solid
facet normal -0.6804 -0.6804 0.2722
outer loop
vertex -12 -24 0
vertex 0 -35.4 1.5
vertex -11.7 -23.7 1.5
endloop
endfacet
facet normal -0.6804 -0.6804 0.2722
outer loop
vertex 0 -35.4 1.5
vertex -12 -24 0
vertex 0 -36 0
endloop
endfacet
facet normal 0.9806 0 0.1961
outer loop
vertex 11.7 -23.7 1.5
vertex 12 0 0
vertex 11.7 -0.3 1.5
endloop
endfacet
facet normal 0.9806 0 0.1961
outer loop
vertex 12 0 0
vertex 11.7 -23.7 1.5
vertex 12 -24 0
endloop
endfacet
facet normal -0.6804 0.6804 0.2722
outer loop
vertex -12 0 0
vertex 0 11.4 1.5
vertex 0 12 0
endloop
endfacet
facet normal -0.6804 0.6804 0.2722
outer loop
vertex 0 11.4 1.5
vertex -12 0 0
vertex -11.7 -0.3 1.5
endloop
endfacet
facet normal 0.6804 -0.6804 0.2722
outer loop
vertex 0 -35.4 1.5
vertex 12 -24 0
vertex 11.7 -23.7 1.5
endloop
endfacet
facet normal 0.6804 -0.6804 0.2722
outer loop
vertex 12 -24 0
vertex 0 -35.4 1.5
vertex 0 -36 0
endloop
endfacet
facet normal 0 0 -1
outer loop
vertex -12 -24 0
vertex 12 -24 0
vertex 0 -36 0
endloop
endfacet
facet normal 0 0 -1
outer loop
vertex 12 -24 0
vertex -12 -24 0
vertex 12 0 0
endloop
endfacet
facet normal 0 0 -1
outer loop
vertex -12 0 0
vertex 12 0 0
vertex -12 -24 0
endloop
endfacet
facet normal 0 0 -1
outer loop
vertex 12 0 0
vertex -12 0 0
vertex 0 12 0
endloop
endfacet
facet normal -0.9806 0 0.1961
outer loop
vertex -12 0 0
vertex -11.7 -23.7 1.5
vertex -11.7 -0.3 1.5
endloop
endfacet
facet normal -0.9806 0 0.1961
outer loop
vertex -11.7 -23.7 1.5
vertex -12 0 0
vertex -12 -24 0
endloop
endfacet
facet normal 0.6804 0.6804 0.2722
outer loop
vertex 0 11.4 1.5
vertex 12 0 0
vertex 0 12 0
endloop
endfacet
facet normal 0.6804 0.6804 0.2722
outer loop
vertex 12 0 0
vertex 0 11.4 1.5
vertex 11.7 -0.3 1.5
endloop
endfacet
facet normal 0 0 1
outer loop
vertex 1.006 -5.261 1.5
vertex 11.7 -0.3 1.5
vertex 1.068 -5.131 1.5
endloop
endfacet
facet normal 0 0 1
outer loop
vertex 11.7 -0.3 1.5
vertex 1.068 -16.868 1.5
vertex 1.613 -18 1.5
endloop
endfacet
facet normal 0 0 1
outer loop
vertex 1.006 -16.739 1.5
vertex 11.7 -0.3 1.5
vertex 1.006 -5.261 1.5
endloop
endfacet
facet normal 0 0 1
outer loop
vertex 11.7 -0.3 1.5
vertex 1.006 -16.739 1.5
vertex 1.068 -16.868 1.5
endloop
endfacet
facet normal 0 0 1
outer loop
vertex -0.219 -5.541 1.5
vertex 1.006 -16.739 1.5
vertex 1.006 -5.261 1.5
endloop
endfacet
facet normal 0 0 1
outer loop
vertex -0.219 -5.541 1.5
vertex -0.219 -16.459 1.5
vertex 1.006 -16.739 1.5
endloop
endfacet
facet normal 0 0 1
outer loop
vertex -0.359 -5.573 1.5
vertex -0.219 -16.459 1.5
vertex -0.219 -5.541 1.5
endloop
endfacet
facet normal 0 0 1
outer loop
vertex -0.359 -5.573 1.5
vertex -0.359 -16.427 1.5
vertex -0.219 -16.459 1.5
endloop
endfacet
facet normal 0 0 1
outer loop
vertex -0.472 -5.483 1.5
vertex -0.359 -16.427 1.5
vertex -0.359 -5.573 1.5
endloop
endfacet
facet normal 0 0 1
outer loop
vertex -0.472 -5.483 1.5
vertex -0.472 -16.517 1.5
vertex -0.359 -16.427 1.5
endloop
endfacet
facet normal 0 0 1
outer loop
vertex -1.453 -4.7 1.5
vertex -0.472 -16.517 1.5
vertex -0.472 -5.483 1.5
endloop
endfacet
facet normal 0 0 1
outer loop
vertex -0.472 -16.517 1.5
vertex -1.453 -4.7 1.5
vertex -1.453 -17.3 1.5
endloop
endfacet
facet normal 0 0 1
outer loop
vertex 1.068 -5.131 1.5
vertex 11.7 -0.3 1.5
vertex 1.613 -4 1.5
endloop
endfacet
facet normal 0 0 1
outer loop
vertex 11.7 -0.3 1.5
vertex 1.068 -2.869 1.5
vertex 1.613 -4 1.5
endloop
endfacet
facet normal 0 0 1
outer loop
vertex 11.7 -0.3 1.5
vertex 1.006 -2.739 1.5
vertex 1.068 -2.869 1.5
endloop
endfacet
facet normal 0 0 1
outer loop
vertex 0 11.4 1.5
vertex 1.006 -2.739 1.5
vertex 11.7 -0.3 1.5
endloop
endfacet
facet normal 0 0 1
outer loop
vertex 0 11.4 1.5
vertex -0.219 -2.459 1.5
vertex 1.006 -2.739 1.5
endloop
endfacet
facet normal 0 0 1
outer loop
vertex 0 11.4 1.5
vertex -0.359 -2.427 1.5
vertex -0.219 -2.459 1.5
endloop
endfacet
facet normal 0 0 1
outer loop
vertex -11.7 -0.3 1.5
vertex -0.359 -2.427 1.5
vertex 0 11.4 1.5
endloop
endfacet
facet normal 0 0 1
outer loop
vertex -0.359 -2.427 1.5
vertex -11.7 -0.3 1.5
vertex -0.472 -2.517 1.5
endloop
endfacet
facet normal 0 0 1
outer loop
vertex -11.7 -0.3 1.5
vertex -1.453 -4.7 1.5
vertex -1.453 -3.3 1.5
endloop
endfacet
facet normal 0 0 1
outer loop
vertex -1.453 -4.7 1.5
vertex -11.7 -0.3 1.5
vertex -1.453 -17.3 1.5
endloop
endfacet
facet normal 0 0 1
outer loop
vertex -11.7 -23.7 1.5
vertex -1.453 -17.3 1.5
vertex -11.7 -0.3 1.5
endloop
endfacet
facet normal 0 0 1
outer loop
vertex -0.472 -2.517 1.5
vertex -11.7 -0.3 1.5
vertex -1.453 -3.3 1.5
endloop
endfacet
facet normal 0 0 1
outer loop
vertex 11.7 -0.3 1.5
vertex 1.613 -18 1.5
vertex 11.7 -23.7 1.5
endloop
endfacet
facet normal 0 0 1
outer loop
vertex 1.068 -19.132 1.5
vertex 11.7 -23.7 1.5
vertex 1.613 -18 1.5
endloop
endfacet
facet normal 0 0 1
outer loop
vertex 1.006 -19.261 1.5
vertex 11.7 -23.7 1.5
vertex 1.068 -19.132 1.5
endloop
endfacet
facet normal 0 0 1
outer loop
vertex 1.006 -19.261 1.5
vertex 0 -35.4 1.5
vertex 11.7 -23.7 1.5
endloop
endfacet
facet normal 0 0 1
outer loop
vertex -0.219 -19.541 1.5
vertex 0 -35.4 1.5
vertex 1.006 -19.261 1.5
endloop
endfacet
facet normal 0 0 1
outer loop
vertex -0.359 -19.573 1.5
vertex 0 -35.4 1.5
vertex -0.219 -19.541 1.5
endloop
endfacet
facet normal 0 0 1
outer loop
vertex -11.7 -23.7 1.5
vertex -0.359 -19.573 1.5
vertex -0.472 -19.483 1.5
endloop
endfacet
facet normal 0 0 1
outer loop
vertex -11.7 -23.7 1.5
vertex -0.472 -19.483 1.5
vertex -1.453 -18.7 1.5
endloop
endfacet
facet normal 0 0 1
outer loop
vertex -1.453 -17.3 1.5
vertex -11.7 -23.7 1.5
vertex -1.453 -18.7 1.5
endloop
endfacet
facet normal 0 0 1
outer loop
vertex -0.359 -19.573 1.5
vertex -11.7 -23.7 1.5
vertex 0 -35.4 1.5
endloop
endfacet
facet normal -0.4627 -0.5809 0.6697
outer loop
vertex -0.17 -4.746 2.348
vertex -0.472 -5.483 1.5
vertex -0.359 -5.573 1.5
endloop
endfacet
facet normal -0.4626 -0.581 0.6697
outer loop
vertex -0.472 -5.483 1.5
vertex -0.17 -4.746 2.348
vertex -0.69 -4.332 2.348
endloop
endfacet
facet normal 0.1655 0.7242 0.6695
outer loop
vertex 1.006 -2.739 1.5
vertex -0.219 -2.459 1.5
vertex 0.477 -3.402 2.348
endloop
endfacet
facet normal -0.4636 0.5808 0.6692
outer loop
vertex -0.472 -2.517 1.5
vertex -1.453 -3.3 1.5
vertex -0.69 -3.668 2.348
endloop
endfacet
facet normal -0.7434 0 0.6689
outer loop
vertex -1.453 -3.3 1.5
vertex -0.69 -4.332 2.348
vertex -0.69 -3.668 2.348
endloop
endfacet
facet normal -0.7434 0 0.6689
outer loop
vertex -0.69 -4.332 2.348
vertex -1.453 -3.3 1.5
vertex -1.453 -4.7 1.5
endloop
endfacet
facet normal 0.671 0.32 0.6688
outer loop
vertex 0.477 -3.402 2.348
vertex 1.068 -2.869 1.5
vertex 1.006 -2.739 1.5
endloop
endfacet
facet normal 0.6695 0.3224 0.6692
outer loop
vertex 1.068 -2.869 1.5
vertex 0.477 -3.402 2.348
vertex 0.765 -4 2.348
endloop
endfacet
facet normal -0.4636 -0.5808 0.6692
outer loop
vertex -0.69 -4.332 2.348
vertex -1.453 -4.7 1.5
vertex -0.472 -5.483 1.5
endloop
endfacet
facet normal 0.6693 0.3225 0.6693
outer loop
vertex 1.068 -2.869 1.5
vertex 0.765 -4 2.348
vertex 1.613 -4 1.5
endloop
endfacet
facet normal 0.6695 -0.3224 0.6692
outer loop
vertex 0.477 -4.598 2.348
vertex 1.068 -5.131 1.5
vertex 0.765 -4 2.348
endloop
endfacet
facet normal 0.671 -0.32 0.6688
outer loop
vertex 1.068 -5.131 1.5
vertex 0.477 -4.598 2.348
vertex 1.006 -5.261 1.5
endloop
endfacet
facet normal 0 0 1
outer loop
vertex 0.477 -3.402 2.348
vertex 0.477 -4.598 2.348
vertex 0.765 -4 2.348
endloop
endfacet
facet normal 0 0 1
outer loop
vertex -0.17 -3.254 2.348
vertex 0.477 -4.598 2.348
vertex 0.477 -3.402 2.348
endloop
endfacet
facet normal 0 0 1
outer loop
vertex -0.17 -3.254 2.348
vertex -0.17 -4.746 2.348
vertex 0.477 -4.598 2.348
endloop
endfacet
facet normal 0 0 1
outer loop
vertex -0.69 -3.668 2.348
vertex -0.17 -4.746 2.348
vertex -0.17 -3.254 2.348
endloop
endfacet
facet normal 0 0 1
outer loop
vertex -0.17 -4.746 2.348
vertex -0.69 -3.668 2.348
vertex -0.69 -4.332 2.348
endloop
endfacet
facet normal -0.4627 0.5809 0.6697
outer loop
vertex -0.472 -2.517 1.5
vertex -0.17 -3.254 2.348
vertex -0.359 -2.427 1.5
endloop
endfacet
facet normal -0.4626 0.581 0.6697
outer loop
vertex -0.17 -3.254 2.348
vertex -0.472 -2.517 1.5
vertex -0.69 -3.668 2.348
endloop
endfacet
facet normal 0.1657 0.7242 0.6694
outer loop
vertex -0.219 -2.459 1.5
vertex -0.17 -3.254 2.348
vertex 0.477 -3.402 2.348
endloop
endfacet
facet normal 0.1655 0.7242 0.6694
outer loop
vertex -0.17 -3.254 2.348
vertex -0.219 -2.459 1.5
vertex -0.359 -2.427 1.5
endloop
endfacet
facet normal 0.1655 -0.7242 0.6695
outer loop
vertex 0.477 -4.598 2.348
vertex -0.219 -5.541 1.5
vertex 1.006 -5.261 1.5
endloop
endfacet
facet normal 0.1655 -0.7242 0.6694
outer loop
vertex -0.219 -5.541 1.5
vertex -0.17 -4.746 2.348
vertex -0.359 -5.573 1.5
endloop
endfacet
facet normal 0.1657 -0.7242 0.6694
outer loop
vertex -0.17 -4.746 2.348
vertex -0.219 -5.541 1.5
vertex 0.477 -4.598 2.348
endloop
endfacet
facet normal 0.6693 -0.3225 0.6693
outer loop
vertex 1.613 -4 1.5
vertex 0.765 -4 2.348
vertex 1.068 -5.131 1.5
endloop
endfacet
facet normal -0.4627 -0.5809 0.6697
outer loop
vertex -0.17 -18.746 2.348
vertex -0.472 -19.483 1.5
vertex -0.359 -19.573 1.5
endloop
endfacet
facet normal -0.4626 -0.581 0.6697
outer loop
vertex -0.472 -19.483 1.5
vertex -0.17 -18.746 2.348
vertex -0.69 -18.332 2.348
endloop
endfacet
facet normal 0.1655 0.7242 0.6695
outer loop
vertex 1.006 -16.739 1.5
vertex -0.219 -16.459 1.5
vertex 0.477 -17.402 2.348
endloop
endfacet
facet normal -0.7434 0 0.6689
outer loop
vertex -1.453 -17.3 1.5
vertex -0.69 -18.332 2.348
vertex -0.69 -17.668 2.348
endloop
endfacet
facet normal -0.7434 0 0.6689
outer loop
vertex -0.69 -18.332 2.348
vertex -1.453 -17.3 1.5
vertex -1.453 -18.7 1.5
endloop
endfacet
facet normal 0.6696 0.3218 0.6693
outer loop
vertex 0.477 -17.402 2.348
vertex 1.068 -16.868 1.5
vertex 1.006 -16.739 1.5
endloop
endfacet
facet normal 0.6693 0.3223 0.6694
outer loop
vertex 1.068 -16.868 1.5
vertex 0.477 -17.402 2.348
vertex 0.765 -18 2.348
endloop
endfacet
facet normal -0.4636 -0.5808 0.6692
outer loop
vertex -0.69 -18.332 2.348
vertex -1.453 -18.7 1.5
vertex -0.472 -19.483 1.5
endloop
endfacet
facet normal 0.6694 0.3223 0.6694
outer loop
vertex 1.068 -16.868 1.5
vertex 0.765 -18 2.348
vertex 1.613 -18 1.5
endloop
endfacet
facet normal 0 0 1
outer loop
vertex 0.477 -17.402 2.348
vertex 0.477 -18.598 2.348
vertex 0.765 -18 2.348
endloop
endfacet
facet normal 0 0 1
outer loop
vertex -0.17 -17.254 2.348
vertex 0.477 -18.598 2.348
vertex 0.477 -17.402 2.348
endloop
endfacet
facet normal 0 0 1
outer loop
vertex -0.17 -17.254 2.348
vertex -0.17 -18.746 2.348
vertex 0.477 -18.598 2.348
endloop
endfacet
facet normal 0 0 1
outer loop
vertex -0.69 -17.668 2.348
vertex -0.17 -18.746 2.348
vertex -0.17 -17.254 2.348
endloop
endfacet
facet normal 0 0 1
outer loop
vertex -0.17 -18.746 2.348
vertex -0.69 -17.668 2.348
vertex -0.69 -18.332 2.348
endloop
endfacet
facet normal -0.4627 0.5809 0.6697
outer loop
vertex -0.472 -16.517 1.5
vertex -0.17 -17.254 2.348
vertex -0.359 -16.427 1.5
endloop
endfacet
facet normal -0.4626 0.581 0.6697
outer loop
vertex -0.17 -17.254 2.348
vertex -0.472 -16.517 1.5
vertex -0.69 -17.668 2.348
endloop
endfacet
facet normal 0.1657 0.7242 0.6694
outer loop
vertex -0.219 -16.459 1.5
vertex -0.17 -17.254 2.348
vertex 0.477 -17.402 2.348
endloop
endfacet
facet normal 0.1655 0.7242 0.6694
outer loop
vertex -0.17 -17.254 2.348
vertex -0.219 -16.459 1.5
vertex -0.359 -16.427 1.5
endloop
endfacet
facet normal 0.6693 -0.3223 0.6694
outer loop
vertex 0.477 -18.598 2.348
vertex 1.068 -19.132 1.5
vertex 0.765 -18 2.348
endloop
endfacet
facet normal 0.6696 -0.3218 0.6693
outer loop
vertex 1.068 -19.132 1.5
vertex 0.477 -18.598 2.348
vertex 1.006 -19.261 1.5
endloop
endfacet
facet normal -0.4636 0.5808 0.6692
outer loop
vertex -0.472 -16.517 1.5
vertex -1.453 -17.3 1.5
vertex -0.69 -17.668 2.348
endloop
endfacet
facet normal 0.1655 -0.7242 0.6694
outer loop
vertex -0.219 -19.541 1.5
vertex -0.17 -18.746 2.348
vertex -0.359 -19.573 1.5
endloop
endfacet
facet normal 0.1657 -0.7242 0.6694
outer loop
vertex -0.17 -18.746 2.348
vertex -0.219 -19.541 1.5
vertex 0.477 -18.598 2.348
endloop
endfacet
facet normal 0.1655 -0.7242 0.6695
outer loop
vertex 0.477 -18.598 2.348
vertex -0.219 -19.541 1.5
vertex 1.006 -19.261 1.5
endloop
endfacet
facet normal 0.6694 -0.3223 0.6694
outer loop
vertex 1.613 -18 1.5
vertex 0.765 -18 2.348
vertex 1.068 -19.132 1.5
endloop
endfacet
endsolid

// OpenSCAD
module hex (unit=20,height=10) {    
          
    polyhedron(points=[
        [0,unit,0],//0
        [unit,0,0],
        [unit,-2*unit,0],
        [0,-3*unit,0],
        [-unit,-2*unit,0],
        [-unit,0,0],//end old 
        [0,unit-2,height],//6
        [unit-1,0-1,height],
        [unit-1,-2*unit+1,height],
        [0,-3*unit+2,height],
        [-unit+1,-2*unit+1,height],
        [-unit+1,0-1,height]],
    faces=[
    //[0,1,2,3,4,5],
    [0,5,4,3,2,1],
    [0,1,7,6],
    [1,2,8,7],
    [2,3,9,8],
    [3,4,10,9],
    [4,5,11,10],
    [5,0,6,11],
    [6,7,8,9,10,11]
    ]);

}

//hex(25,10);
//16mm on center
//250mm/digit inner
//140 max/digit. ~120mm /
u=12;
margin=5;
border=2;

radius=2;

difference() {
    union() {
        difference() {
            hex(u,5);
            translate([-20,-40,1.5]) {
                cube(60);
            };

        }

        translate([0,-4,0.5]) { 
            sphere(radius);
        };
        
        translate([0,-18,0.5]) { 
            sphere(radius);
        };
    };
    translate([-20,-40,-5])  {
        cube([40,60,5]);
    };
};
